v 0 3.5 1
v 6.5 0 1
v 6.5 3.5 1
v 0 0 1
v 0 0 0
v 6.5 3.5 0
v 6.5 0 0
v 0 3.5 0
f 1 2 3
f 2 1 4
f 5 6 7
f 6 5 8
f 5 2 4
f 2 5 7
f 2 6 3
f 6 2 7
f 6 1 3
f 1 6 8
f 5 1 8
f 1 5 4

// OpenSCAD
/* Warning, this is a very basic generator with a lot of approximation 
input data : [SOT-223, N7X, 6.50x3.50mm, 5, , E, C04-00137E]
generated by com.zoubworld.electronics.cad.model3d.Basic
Date : Sun Feb 15 10:50:48 CET 2026
*/

//body
color("black")
translate([0,0,0])
cube([6.5,3.5,1.0], center=false);
